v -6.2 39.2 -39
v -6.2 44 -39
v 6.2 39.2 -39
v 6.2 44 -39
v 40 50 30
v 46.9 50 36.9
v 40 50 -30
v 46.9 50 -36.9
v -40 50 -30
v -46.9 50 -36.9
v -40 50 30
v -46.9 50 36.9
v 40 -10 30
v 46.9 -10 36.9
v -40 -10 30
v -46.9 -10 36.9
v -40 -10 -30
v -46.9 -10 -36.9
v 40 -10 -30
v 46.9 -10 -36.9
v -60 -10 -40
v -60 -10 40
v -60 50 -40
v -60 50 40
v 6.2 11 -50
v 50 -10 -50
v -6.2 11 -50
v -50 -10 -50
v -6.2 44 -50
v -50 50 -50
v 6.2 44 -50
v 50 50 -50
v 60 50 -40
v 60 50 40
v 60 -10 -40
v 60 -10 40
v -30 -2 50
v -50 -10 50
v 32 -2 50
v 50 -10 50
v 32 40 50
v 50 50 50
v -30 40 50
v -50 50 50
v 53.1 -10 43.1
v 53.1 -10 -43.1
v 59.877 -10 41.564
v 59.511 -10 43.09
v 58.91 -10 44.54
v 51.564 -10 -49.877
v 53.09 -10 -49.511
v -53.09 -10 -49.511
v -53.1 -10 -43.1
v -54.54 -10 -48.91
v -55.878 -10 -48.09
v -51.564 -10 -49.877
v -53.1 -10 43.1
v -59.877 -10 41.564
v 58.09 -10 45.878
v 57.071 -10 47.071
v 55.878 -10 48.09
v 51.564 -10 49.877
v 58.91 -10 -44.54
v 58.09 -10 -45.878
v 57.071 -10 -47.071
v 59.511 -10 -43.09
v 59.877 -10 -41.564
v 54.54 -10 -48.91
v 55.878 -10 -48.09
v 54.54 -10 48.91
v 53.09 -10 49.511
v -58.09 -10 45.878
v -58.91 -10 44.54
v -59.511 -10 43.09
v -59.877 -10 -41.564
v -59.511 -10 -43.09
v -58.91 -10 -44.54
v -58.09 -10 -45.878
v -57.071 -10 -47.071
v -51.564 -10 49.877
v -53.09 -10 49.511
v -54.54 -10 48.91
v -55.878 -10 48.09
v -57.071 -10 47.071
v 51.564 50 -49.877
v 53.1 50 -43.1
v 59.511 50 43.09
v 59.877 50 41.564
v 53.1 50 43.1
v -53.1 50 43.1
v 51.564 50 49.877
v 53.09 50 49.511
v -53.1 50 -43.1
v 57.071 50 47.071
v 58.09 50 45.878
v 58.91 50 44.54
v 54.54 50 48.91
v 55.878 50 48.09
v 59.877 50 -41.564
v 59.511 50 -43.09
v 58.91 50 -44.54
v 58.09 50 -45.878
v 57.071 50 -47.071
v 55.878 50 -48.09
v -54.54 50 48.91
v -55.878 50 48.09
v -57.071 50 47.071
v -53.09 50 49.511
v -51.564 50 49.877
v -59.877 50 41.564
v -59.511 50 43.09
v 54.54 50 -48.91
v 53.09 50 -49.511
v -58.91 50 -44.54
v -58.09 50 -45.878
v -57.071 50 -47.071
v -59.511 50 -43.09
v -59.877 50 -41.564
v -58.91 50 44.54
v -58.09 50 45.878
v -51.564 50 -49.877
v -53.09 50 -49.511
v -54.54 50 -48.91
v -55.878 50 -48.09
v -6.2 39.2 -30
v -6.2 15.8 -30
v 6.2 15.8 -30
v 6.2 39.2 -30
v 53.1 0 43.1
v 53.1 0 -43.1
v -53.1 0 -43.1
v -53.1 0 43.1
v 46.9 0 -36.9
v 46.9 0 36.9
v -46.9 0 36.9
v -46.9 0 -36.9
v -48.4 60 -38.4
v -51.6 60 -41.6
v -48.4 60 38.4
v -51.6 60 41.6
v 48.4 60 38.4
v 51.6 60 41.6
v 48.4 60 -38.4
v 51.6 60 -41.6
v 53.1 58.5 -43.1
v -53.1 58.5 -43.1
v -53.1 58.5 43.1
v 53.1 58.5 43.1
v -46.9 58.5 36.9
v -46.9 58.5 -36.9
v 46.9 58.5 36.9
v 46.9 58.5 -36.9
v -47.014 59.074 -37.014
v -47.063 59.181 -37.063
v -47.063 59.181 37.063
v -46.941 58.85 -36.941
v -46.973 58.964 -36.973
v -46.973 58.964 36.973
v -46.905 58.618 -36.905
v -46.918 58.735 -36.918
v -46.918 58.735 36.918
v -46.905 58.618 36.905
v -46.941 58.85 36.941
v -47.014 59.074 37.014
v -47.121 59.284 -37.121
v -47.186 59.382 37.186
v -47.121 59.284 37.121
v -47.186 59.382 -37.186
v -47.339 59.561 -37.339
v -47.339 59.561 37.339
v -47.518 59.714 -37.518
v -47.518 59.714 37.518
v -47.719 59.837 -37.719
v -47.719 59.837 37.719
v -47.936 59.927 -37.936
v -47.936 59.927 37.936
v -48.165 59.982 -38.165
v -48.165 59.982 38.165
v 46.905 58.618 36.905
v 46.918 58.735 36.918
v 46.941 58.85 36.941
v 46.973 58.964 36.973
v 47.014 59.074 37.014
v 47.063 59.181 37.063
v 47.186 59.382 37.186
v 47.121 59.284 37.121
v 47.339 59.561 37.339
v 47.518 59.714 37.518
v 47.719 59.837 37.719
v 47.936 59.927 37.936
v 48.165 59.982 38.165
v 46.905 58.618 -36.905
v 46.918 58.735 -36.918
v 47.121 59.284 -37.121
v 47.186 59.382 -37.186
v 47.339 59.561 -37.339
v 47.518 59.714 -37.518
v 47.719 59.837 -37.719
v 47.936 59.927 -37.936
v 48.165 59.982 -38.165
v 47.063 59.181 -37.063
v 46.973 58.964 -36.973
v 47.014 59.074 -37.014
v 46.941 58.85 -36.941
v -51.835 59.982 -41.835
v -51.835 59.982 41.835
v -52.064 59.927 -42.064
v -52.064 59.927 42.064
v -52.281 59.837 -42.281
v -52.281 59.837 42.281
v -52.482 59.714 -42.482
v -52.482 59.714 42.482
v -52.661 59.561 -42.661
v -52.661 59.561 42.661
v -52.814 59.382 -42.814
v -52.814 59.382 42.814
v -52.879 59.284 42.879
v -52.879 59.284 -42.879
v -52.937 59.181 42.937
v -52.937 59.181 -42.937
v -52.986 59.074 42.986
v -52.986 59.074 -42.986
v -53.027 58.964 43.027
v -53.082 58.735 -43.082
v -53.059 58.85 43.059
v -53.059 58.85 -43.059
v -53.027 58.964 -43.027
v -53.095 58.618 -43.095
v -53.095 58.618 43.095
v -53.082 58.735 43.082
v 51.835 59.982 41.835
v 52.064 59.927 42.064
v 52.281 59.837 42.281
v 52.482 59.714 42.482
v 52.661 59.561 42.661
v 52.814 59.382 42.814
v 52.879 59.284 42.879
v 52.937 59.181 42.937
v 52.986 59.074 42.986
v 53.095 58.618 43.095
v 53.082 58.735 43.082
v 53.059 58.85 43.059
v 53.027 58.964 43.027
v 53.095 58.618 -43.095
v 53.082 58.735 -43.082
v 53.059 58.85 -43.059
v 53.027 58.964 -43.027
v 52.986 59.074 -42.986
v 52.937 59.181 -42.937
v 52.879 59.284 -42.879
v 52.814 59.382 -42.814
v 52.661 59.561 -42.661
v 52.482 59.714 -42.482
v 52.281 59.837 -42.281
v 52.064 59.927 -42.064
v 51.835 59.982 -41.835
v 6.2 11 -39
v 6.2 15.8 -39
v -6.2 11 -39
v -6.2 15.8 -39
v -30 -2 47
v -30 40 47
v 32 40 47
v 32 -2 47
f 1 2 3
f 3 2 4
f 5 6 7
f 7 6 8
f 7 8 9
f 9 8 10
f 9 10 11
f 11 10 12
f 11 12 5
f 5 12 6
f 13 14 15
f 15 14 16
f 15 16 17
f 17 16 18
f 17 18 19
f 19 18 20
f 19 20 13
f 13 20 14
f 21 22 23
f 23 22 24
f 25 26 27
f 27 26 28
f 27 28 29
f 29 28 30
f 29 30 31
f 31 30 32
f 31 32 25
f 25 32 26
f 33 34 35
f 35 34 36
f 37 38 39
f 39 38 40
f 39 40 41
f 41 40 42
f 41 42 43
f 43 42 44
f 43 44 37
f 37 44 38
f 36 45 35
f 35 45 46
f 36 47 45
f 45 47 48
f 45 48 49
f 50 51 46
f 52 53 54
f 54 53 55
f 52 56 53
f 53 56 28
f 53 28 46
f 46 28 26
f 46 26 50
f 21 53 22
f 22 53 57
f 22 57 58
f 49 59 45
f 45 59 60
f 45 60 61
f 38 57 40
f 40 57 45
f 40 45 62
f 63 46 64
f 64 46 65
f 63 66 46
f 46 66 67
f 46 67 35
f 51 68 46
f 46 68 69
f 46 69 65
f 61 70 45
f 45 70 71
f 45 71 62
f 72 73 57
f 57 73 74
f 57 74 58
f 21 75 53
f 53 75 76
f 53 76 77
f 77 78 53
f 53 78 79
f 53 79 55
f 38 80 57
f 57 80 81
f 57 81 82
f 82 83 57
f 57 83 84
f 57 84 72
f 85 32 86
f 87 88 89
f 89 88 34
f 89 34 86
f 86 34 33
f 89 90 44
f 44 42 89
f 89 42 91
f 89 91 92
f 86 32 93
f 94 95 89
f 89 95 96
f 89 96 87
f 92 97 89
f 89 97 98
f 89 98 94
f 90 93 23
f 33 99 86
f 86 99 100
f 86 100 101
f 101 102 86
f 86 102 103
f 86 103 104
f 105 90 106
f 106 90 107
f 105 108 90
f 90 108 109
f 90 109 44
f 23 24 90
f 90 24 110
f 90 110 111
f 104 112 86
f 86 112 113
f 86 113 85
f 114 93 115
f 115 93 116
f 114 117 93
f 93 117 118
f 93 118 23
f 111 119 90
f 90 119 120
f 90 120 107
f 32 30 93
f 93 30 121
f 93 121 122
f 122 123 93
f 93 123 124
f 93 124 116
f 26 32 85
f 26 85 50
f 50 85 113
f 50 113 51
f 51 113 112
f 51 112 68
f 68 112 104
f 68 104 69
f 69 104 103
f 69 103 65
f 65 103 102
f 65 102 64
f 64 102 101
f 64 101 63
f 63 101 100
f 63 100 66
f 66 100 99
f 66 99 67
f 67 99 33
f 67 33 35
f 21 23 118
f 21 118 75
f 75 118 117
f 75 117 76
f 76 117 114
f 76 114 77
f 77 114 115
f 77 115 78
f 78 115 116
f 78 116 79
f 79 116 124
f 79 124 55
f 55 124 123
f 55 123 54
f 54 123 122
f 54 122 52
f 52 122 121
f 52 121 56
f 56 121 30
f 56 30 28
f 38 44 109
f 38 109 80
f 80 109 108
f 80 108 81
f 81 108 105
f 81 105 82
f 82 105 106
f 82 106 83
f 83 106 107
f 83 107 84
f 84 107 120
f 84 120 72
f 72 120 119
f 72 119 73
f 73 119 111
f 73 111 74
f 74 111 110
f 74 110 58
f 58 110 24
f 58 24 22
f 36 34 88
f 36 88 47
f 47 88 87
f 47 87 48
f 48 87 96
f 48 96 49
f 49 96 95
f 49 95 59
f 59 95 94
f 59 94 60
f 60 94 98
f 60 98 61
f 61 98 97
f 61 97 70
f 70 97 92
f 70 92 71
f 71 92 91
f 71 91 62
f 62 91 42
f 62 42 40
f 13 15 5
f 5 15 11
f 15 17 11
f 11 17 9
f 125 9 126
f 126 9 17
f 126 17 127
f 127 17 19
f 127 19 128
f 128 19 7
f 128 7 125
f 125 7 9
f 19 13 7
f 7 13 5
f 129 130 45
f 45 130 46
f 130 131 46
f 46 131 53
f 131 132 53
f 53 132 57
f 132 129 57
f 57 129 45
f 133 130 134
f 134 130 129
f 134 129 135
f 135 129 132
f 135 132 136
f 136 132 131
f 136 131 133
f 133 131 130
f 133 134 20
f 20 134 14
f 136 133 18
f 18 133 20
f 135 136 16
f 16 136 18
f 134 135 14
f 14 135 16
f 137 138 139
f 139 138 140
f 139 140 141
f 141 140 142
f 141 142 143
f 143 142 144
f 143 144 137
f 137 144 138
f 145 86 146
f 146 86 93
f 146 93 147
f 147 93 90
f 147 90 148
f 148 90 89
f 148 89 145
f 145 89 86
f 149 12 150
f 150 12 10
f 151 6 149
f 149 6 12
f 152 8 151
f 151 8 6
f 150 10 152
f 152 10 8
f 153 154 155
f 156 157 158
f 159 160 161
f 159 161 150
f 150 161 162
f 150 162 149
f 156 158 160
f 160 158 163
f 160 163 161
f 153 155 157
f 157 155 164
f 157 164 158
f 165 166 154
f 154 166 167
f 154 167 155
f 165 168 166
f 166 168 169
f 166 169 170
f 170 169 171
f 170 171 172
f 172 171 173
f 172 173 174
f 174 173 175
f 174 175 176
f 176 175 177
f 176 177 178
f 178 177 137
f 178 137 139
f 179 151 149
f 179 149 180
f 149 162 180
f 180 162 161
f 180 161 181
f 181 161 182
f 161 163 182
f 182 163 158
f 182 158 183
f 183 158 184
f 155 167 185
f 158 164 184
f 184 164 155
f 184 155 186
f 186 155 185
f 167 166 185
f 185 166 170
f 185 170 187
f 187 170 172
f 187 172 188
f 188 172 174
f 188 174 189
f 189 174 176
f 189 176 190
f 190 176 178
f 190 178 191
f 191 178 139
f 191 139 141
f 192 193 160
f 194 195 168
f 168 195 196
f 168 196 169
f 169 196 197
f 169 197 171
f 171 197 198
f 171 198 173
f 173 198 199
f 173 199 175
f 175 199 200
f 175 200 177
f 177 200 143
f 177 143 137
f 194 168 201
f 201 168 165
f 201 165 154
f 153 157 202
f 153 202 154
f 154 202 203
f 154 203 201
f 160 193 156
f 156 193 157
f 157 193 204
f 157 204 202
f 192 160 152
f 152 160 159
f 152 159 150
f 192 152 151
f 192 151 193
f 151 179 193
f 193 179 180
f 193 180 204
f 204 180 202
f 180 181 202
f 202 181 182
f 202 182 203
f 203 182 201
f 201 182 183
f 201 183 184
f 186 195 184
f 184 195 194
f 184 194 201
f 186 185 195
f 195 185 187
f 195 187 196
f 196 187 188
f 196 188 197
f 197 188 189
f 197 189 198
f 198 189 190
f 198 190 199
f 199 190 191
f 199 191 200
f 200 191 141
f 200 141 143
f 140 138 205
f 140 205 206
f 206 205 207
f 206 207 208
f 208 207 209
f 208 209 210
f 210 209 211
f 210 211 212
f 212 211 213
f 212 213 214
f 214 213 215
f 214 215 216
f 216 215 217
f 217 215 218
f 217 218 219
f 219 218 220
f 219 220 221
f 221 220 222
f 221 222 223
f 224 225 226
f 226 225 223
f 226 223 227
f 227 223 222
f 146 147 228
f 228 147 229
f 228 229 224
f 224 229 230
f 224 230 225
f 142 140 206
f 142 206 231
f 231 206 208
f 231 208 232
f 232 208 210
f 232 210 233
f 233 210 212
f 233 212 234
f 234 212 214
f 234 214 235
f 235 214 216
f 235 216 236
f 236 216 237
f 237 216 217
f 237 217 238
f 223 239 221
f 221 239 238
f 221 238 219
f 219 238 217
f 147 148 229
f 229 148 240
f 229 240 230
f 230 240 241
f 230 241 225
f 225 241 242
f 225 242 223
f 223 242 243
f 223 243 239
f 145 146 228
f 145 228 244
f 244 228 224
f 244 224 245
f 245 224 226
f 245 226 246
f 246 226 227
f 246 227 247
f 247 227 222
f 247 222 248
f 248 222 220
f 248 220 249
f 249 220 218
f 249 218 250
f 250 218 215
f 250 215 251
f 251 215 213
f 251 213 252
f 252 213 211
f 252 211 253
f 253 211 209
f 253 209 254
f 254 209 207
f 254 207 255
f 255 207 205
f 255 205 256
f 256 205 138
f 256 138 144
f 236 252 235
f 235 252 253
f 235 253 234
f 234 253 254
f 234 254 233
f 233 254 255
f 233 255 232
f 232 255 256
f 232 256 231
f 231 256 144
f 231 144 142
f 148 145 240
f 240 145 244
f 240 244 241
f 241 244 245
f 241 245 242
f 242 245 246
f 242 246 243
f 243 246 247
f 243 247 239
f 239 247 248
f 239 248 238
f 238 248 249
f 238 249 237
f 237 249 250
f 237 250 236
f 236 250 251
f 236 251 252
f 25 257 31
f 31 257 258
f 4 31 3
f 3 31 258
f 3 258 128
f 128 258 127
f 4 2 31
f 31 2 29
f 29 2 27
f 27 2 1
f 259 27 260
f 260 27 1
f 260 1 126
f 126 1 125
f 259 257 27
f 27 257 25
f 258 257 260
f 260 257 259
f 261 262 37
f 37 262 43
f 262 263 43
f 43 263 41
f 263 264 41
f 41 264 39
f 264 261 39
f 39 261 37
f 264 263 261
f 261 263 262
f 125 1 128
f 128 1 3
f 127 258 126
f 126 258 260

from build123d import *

# Parameters (mm, degrees)
BOSS_EXTRUDE1_DEPTH      = 50
BOSS_EXTRUDE1_DEPTH_BACK = 10
SKETCH1_W                = 120
SKETCH1_H                = 100
FILLET1_R                = 10
SKETCH2_W                = 80
SKETCH2_H                = 60
CUT_EXTRUDE1_DEPTH       = 99.488578018
SKETCH3_W                = 106.2
SKETCH3_H                = 86.2
SKETCH3_W_2              = 93.8
SKETCH3_H_2              = 73.8
CUT_EXTRUDE2_DEPTH       = 10
SKETCH4_W                = 106.2
SKETCH4_H                = 86.2
SKETCH4_W_2              = 93.8
SKETCH4_H_2              = 73.8
BOSS_EXTRUDE2_DEPTH      = 10
FILLET2_R                = 1.5
SKETCH5_W                = 12.4
SKETCH5_H                = 33
CUT_EXTRUDE3_DEPTH       = 11
SKETCH10_W               = 62
SKETCH10_H               = 42
CUT_EXTRUDE7_DEPTH       = 3
CUT_EXTRUDE8_DEPTH       = 20


with BuildPart() as part:
    # Sketch1 → Boss-Extrude1 (new, two sides: drawn at the far end of the back side and taken through both)
    with BuildSketch(Plane(origin=(0, 0, 0), x_dir=(1, 0, 0), z_dir=(0, 1, 0)).offset(-BOSS_EXTRUDE1_DEPTH_BACK)):
        Rectangle(SKETCH1_W, SKETCH1_H)
    extrude(amount=BOSS_EXTRUDE1_DEPTH + BOSS_EXTRUDE1_DEPTH_BACK)

    # Fillet1
    fillet1_edges = [part.edges().sort_by_distance(p)[0] for p in [
        (-60, 20, -50),
        (60, 20, -50),
        (60, 20, 50),
        (-60, 20, 50),
    ]]
    fillet(fillet1_edges, radius=FILLET1_R)

    # Sketch2 → Cut-Extrude1 (cut, through all)
    with BuildSketch(Plane(origin=(0, 50, 0), x_dir=(1, 0, 0), z_dir=(0, 1, 0))):
        Rectangle(SKETCH2_W, SKETCH2_H)
    extrude(amount=-CUT_EXTRUDE1_DEPTH, mode=Mode.SUBTRACT)

    # Sketch3 → Cut-Extrude2 (cut)
    with BuildSketch(Plane.XZ.offset(10)):
        Rectangle(SKETCH3_W, SKETCH3_H)
        Rectangle(SKETCH3_W_2, SKETCH3_H_2, mode=Mode.SUBTRACT)
    extrude(amount=-CUT_EXTRUDE2_DEPTH, mode=Mode.SUBTRACT)

    # Sketch4 → Boss-Extrude2 (add)
    with BuildSketch(Plane(origin=(0, 50, 0), x_dir=(1, 0, 0), z_dir=(0, 1, 0))):
        Rectangle(SKETCH4_W, SKETCH4_H)
        Rectangle(SKETCH4_W_2, SKETCH4_H_2, mode=Mode.SUBTRACT)
    extrude(amount=BOSS_EXTRUDE2_DEPTH)

    # Fillet2
    fillet2_edges = [part.edges().sort_by_distance(p)[0] for p in [
        (-46.9, 60, 0),
        (0, 60, 36.9),
        (46.9, 60, 0),
        (0, 60, -36.9),
        (0, 60, -43.1),
        (-53.1, 60, 0),
        (0, 60, 43.1),
        (53.1, 60, 0),
    ]]
    fillet(fillet2_edges, radius=FILLET2_R)

    # Sketch5 → Cut-Extrude3 (cut)
    with BuildSketch(Plane(origin=(0, 0, -50), x_dir=(-1, 0, 0), z_dir=(0, 0, -1))):
        with Locations((0, 27.5)):
            Rectangle(SKETCH5_W, SKETCH5_H)
    extrude(amount=-CUT_EXTRUDE3_DEPTH, mode=Mode.SUBTRACT)

    # Sketch10 → Cut-Extrude7 (cut)
    with BuildSketch(Plane.XY.offset(50)):
        with Locations((1, 19)):
            Rectangle(SKETCH10_W, SKETCH10_H)
    extrude(amount=-CUT_EXTRUDE7_DEPTH, mode=Mode.SUBTRACT)

    # Sketch9 → Cut-Extrude8 (cut)
    with BuildSketch(Plane(origin=(0, 0, -50), x_dir=(-1, 0, 0), z_dir=(0, 0, -1))):
        Polygon((-6.2, 27.5), (-6.2, 39.2), (6.2, 39.2), (6.2, 15.8), (-6.2, 15.8), align=None)
    extrude(amount=-CUT_EXTRUDE8_DEPTH, mode=Mode.SUBTRACT)


solid = part.part
